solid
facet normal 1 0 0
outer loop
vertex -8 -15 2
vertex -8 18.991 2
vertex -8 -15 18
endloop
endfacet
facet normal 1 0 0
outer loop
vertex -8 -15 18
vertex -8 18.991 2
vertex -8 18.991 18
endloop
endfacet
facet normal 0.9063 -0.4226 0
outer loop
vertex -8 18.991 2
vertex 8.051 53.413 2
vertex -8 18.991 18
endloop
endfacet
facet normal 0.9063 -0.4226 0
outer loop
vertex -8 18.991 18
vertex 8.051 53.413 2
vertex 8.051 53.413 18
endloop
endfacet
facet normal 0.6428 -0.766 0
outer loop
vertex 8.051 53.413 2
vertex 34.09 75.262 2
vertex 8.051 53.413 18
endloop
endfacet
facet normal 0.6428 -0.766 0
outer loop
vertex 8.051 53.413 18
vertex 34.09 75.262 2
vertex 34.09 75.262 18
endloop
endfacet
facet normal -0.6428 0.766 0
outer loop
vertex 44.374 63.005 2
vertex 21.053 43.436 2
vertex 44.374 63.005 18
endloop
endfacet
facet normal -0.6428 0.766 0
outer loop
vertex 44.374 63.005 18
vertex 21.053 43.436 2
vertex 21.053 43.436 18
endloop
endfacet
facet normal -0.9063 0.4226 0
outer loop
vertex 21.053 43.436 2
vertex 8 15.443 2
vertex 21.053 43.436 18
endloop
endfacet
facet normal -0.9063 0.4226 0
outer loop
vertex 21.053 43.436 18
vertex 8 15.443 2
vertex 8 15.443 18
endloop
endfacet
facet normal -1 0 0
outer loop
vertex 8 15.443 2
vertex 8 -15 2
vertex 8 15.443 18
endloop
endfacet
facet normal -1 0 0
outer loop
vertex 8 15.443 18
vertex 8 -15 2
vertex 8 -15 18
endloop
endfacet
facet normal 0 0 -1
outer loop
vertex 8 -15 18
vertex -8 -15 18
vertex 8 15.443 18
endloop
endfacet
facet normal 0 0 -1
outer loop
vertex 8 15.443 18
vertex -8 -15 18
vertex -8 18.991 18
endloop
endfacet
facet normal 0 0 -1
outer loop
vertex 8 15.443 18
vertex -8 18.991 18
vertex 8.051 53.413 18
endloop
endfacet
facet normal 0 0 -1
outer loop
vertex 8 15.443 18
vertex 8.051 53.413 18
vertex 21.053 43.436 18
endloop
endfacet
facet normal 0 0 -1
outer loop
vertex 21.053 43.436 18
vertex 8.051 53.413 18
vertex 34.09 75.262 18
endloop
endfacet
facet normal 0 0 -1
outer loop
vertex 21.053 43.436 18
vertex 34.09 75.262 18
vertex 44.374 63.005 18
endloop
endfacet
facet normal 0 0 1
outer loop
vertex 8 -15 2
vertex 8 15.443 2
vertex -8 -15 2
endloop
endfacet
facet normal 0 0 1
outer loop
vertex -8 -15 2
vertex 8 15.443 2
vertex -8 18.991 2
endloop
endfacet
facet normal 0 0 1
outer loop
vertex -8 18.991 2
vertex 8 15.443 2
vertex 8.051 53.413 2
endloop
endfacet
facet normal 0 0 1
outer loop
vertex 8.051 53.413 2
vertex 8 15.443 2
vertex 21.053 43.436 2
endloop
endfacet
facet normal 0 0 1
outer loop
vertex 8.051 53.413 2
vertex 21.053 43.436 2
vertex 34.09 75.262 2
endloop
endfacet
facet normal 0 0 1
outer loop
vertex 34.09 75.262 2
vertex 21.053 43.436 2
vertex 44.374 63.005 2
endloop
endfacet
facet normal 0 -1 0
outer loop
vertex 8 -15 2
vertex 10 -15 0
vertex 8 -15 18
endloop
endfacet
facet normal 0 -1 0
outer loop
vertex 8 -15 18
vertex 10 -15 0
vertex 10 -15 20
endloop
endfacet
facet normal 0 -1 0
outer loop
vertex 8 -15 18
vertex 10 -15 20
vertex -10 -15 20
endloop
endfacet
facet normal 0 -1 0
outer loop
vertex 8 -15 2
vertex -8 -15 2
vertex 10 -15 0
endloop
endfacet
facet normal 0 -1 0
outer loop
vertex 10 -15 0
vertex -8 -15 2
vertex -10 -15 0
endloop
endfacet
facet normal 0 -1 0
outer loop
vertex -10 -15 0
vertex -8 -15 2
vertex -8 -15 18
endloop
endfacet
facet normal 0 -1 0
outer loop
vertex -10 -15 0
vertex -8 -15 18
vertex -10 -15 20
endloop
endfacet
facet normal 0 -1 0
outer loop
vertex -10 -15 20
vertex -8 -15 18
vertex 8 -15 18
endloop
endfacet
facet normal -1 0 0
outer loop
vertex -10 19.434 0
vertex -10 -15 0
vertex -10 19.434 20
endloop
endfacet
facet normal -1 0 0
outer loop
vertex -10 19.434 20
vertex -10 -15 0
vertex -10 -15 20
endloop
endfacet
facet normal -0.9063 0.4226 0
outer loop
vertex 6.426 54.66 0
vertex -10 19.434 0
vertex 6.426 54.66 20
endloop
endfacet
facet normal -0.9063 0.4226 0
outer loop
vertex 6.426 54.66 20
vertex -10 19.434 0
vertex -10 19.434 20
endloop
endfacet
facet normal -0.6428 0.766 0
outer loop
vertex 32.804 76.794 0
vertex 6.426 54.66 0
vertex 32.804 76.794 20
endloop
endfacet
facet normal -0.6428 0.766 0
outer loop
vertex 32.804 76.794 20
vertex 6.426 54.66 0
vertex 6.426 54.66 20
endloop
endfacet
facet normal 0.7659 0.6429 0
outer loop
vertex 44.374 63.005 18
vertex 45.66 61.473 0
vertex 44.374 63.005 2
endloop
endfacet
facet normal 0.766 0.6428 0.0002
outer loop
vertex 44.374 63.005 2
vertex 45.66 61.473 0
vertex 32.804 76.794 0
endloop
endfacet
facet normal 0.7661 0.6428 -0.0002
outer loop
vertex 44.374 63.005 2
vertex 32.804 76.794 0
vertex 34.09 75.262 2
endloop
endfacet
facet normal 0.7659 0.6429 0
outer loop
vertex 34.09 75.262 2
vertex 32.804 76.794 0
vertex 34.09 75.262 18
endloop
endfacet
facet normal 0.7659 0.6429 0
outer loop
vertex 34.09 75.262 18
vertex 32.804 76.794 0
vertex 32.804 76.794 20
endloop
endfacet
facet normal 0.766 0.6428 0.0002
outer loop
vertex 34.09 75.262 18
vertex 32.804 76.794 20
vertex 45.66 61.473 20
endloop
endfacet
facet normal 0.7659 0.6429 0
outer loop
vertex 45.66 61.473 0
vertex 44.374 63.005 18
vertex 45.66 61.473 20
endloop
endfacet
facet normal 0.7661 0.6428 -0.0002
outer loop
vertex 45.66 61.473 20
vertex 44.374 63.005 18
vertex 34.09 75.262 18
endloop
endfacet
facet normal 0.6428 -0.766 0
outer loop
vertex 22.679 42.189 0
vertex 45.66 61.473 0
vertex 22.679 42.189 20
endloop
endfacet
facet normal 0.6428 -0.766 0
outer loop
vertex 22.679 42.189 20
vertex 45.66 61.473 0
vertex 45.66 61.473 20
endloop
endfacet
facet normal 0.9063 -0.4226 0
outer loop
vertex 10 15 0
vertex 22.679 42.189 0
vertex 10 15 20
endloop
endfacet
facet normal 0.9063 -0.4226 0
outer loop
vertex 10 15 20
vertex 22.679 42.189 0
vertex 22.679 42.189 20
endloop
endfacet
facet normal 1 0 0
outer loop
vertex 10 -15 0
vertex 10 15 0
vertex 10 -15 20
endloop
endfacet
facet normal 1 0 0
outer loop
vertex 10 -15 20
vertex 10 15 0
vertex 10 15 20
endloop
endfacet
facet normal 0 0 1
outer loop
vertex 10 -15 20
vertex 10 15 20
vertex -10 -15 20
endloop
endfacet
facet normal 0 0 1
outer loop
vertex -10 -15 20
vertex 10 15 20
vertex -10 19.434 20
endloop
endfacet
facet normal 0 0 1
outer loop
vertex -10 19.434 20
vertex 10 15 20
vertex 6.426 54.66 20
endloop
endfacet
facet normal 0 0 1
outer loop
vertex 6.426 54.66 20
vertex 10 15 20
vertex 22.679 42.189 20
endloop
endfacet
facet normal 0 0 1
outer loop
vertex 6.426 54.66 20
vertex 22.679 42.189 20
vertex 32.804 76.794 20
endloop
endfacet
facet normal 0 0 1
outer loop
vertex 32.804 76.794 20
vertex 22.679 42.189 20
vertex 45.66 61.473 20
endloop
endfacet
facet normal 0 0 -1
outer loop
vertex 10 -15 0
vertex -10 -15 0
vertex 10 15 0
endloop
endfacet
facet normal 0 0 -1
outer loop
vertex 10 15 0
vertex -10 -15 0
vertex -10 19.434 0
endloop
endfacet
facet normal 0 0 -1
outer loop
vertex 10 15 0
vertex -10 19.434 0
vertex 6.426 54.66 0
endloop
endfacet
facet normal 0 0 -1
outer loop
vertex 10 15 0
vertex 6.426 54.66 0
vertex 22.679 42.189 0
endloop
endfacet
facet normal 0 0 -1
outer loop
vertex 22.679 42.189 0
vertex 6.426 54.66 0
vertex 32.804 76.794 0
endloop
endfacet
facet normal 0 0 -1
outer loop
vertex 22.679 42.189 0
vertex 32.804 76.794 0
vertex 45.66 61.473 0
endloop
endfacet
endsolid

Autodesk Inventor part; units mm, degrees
ref_plane "YZ Plane" through (0, 0, 0) normal (1, 0, 0) x (0, 1, 0)
ref_plane "XZ Plane" through (0, 0, 0) normal (0, 1, 0) x (-1, 0, 0)
ref_plane "XY Plane" through (0, 0, 0) normal (0, 0, 1) x (1, 0, 0)
sketch "Sketch1" plane through (0, 0, 0) normal (0, 0, 1) x (1, 0, 0)
  line L0 (-10, -15) -> (10, -15)
  line L1 (10, -15) -> (10, 15)
  line L2 (10, 15) -> (-10, 15) construction
  line L3 (-10, 19.4339) -> (-10, -15)
  line L4 (-10, -15) -> (10, 15) construction
  line L5 (10, -15) -> (-10, 15) construction
  line L6 (10, 15) -> (22.6785, 42.1892)
  line L7 (22.6785, 42.1892) -> (4.5524, 50.6416) construction
  line L8 (6.4262, 54.6601) -> (-10, 19.4339)
  line L9 (9.8228, 57.5101) -> (22.6785, 42.1892) construction
  line L10 (22.6785, 42.1892) -> (45.6599, 61.4729)
  line L11 (45.6599, 61.4729) -> (32.8041, 76.7938)
  line L12 (32.8041, 76.7938) -> (6.4262, 54.6601)
  line L13 (12.6785, 27.1892) -> (32.6785, 57.1892) construction
  line L14 (32.6785, 27.1892) -> (12.6785, 57.1892) construction
  point P0 (0, 0)
  dimension "d3" = 30
  dimension "d4" = 20
  dimension "d5" = 30
  dimension "d6" = 34.4339
  dimension "d9" = 90
  dimension "d10" = 20
  dimension "d12" = 155
  dimension "d13" = 35.2262
  dimension "d14" = 22.1337
  dimension "d15" = 26.3779
  dimension "d16" = 20
extrude "Extrusion1" add sketch "Sketch1" along normal blind 20
shell "Shell1" thickness 2 removed faces 2 at (-3.3333, -15, 6.6667) at (41.3746, 66.5798, 6.6667)
properties part number "bent_finger_model"
